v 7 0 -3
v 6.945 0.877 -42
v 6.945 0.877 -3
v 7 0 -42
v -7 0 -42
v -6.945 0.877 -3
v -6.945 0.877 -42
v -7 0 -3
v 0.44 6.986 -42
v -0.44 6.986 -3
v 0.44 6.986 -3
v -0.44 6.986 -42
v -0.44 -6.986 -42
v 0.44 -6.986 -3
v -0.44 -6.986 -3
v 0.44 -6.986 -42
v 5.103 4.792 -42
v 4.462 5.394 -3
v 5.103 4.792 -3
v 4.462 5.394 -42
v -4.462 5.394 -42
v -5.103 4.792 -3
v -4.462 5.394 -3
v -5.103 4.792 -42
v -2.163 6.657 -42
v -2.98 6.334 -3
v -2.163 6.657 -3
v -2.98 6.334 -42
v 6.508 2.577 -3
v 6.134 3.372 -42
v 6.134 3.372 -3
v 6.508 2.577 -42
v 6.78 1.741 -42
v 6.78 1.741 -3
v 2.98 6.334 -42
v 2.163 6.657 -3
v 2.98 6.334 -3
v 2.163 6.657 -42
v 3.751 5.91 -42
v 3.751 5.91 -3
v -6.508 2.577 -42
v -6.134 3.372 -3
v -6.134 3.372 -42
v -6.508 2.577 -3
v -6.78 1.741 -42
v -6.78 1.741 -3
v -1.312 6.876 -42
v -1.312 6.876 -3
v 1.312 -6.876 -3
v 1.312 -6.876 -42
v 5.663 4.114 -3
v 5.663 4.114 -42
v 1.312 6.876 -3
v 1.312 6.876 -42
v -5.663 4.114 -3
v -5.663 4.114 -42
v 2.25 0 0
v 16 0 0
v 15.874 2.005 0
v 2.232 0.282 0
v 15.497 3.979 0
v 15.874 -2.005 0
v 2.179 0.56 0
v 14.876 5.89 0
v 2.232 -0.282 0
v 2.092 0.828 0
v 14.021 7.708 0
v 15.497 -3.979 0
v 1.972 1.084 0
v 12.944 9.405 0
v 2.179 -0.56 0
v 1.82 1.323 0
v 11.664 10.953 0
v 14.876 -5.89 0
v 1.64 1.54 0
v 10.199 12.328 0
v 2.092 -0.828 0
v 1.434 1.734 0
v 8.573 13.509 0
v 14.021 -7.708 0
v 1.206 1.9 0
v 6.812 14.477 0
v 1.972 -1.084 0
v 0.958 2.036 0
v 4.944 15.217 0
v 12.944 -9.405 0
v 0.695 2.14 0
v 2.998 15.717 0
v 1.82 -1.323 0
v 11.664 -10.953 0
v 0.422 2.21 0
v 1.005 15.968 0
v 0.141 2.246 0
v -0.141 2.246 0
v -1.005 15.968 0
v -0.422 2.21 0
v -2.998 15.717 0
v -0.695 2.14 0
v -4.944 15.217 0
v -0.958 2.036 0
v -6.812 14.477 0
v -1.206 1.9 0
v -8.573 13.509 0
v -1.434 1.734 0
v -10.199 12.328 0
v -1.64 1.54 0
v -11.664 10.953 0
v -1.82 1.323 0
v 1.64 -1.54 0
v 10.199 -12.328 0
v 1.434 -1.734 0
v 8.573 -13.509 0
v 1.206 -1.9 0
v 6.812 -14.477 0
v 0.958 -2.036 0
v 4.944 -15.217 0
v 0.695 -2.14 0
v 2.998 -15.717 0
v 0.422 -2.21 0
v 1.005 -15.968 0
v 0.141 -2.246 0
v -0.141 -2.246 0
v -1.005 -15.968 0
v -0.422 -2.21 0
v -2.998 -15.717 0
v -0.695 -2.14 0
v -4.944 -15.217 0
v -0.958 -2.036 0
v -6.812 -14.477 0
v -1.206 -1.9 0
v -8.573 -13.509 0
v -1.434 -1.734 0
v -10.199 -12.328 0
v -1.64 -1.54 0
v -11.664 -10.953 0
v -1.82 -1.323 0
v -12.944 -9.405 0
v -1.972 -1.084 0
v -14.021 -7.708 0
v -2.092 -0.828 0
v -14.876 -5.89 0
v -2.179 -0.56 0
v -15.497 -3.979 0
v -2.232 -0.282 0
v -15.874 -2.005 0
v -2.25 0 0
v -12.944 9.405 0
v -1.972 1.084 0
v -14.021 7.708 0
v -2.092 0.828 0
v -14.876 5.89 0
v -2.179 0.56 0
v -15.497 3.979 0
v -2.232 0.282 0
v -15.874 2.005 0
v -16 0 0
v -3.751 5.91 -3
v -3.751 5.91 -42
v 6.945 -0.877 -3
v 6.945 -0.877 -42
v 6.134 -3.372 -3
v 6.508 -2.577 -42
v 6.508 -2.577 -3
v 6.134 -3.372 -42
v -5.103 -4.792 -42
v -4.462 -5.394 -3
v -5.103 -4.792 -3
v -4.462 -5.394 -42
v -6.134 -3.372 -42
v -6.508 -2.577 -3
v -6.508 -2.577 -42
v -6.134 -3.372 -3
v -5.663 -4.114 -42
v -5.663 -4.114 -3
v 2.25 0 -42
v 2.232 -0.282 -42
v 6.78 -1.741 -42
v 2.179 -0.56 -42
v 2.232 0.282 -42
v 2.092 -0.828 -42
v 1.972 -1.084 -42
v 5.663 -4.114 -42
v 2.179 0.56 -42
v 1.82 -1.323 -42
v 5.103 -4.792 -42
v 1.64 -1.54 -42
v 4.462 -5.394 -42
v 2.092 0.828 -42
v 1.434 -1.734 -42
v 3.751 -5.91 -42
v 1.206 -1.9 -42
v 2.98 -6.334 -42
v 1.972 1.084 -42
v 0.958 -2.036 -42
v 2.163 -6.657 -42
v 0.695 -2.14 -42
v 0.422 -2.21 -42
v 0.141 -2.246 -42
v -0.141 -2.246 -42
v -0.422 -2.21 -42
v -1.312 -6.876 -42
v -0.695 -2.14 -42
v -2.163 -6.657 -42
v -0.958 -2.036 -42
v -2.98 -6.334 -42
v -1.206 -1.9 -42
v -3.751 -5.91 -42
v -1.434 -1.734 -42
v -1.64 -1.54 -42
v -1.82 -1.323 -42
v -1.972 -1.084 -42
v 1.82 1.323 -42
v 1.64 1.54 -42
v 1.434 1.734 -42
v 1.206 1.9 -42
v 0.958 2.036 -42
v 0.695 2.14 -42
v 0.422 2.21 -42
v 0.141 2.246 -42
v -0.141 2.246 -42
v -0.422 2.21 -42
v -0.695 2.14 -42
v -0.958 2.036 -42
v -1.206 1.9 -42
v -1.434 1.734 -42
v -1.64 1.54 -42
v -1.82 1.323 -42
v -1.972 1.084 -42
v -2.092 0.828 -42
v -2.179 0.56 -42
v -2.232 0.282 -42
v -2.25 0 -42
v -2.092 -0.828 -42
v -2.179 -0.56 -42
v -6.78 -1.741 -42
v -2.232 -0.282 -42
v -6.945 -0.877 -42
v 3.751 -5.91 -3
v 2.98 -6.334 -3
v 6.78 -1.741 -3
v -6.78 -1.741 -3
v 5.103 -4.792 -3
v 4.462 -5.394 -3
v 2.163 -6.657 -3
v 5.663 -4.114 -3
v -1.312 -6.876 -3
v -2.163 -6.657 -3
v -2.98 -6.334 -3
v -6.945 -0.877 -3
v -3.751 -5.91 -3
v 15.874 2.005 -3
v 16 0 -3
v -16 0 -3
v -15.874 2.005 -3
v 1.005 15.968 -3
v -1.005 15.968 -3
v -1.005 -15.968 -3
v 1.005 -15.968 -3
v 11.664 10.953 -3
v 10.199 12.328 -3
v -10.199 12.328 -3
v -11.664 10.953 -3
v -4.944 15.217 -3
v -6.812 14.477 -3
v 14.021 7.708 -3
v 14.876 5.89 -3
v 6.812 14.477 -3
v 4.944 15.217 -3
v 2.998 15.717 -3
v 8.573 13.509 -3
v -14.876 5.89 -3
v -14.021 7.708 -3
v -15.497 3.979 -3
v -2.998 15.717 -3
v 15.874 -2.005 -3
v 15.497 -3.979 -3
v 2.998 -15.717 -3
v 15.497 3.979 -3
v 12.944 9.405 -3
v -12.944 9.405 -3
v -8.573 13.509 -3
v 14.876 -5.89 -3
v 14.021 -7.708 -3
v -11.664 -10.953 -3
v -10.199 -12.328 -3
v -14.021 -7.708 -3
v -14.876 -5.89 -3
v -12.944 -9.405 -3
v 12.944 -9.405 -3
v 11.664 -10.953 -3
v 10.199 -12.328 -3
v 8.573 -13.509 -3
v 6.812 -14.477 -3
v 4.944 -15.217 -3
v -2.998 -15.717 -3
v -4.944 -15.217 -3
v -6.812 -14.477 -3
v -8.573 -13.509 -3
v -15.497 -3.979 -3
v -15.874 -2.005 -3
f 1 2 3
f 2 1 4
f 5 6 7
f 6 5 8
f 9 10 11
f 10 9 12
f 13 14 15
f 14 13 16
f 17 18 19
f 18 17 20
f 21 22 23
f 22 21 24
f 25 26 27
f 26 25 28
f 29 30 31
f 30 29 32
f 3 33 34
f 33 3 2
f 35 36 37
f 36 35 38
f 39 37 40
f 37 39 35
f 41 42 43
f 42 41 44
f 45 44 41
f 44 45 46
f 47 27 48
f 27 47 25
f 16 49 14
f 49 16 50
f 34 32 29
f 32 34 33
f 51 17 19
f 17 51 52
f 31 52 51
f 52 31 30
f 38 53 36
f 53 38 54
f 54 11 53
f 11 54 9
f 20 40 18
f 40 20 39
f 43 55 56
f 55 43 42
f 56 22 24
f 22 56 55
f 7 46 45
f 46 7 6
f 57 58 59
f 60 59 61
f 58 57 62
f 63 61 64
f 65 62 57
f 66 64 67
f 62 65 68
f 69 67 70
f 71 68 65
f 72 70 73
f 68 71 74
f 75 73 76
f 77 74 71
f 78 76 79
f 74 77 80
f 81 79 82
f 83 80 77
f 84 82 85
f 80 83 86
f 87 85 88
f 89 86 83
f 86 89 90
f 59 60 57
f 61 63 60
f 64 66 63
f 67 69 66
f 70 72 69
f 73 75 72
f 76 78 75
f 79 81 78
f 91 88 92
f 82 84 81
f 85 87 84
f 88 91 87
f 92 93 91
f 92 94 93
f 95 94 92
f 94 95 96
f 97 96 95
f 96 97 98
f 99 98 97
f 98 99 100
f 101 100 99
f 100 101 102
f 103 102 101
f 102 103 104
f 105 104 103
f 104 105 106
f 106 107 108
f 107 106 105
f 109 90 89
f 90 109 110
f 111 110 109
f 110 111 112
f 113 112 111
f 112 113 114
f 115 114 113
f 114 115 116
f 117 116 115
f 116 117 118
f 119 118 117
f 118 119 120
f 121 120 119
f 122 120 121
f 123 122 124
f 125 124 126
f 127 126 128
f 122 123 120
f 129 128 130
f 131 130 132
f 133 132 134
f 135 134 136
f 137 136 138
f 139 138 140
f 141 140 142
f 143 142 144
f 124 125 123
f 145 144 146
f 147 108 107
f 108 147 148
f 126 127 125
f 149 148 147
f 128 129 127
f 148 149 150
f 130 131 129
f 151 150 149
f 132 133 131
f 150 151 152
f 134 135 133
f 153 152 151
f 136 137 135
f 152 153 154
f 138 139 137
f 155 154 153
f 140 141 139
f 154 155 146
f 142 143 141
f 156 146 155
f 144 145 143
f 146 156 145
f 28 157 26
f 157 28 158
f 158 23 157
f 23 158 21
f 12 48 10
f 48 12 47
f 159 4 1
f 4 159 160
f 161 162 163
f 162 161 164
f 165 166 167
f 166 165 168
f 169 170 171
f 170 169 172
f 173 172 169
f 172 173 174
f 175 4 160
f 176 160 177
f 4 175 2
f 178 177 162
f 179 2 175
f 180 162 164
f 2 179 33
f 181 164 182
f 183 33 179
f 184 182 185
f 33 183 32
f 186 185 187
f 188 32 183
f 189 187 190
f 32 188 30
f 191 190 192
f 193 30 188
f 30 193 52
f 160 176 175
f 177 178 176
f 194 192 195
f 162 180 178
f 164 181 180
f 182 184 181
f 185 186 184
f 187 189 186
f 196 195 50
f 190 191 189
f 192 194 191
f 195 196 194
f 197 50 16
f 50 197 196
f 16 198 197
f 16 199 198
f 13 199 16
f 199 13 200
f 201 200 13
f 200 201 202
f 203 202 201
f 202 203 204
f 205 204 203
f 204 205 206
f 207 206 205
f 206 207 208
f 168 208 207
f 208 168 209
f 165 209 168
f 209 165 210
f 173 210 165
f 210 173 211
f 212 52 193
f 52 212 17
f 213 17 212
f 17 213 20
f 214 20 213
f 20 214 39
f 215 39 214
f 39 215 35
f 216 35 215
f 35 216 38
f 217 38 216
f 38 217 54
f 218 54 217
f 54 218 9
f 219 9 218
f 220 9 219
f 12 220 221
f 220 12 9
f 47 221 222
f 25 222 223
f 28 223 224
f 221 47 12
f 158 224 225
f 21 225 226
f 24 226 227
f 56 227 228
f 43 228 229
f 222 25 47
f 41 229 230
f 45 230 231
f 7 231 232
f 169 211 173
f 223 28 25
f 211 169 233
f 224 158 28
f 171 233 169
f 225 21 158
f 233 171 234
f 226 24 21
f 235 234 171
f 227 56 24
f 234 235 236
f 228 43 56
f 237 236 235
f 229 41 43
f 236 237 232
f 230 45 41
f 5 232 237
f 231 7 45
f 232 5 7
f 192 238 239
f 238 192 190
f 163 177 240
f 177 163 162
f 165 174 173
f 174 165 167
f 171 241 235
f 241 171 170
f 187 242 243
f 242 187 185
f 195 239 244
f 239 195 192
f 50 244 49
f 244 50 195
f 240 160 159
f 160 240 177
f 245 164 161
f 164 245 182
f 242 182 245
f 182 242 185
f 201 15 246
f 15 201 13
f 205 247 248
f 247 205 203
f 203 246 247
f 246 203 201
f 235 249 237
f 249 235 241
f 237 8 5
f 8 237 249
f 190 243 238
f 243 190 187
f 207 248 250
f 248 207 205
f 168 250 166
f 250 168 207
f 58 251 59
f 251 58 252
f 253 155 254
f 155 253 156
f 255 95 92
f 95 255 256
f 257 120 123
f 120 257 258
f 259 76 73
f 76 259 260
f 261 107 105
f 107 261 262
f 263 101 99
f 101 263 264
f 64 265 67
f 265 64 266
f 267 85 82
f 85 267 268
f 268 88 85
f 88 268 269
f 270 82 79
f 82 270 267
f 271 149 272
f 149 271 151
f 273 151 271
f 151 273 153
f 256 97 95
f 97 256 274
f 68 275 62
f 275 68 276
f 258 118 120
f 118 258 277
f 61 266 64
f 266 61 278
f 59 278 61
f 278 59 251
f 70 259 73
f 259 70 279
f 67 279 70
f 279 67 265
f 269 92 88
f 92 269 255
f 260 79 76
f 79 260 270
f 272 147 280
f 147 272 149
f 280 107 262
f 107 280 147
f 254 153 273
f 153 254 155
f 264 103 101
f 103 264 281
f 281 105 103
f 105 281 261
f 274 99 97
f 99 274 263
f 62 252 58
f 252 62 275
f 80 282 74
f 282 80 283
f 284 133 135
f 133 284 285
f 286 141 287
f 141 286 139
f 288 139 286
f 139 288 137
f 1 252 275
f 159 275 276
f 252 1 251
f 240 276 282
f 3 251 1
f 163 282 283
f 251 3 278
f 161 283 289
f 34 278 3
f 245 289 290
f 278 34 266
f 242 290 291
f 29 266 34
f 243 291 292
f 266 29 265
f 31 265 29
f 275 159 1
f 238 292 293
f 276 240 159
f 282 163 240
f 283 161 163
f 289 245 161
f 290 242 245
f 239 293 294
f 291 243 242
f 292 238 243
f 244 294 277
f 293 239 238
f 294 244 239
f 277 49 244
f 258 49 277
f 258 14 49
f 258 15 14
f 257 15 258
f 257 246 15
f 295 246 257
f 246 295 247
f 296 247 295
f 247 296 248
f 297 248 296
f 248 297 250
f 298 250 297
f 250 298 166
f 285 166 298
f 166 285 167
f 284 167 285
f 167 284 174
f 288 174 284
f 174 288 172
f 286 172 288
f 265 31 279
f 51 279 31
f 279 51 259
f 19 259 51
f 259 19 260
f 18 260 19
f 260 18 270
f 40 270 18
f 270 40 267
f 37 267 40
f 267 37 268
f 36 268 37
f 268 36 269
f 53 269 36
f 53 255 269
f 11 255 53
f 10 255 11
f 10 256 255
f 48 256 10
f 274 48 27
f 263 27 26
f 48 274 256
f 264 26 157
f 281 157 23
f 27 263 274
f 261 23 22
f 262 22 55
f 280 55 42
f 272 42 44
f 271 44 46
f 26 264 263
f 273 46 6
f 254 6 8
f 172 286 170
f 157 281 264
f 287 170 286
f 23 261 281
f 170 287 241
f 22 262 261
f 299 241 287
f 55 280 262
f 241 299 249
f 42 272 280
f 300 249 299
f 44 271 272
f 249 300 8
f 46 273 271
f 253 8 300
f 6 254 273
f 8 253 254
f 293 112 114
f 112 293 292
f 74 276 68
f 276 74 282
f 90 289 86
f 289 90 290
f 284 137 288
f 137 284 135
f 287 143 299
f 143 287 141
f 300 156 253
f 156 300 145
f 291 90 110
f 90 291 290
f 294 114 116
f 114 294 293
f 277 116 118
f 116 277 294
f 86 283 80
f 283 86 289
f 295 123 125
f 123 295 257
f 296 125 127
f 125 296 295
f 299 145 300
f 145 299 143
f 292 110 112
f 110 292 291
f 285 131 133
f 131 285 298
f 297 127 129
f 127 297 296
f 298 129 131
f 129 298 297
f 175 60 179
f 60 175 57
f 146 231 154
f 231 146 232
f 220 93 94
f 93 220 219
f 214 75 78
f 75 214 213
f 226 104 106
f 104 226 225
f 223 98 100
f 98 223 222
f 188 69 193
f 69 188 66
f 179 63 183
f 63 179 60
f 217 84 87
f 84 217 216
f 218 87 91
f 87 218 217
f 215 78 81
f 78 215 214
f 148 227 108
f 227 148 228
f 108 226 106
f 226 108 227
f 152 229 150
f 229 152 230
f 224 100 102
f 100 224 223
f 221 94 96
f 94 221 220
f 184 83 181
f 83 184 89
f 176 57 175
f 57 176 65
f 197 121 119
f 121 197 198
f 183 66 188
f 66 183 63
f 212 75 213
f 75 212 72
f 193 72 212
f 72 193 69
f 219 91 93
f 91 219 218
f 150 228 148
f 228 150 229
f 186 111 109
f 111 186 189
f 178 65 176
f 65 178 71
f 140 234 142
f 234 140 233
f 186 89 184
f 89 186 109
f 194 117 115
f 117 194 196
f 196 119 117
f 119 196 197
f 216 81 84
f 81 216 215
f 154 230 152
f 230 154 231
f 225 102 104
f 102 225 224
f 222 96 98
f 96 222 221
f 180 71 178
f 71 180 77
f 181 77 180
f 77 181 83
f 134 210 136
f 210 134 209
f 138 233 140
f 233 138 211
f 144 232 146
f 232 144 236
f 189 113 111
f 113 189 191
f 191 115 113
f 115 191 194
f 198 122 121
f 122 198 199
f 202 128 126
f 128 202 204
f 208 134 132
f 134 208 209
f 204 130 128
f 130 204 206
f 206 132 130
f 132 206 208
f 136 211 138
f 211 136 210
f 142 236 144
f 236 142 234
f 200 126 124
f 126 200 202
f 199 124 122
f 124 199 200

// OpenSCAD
$fn = 50;


difference() {
	union() {
		translate(v = [0, 0, -42.0000000000]) {
			cylinder(h = 42, r = 7.0000000000);
		}
		translate(v = [0, 0, -3.0000000000]) {
			cylinder(h = 3, r = 16.0000000000);
		}
	}
	union() {
		#translate(v = [0, 0, -42]) {
			cylinder(h = 42, r = 2.2500000000);
		}
	}
}
